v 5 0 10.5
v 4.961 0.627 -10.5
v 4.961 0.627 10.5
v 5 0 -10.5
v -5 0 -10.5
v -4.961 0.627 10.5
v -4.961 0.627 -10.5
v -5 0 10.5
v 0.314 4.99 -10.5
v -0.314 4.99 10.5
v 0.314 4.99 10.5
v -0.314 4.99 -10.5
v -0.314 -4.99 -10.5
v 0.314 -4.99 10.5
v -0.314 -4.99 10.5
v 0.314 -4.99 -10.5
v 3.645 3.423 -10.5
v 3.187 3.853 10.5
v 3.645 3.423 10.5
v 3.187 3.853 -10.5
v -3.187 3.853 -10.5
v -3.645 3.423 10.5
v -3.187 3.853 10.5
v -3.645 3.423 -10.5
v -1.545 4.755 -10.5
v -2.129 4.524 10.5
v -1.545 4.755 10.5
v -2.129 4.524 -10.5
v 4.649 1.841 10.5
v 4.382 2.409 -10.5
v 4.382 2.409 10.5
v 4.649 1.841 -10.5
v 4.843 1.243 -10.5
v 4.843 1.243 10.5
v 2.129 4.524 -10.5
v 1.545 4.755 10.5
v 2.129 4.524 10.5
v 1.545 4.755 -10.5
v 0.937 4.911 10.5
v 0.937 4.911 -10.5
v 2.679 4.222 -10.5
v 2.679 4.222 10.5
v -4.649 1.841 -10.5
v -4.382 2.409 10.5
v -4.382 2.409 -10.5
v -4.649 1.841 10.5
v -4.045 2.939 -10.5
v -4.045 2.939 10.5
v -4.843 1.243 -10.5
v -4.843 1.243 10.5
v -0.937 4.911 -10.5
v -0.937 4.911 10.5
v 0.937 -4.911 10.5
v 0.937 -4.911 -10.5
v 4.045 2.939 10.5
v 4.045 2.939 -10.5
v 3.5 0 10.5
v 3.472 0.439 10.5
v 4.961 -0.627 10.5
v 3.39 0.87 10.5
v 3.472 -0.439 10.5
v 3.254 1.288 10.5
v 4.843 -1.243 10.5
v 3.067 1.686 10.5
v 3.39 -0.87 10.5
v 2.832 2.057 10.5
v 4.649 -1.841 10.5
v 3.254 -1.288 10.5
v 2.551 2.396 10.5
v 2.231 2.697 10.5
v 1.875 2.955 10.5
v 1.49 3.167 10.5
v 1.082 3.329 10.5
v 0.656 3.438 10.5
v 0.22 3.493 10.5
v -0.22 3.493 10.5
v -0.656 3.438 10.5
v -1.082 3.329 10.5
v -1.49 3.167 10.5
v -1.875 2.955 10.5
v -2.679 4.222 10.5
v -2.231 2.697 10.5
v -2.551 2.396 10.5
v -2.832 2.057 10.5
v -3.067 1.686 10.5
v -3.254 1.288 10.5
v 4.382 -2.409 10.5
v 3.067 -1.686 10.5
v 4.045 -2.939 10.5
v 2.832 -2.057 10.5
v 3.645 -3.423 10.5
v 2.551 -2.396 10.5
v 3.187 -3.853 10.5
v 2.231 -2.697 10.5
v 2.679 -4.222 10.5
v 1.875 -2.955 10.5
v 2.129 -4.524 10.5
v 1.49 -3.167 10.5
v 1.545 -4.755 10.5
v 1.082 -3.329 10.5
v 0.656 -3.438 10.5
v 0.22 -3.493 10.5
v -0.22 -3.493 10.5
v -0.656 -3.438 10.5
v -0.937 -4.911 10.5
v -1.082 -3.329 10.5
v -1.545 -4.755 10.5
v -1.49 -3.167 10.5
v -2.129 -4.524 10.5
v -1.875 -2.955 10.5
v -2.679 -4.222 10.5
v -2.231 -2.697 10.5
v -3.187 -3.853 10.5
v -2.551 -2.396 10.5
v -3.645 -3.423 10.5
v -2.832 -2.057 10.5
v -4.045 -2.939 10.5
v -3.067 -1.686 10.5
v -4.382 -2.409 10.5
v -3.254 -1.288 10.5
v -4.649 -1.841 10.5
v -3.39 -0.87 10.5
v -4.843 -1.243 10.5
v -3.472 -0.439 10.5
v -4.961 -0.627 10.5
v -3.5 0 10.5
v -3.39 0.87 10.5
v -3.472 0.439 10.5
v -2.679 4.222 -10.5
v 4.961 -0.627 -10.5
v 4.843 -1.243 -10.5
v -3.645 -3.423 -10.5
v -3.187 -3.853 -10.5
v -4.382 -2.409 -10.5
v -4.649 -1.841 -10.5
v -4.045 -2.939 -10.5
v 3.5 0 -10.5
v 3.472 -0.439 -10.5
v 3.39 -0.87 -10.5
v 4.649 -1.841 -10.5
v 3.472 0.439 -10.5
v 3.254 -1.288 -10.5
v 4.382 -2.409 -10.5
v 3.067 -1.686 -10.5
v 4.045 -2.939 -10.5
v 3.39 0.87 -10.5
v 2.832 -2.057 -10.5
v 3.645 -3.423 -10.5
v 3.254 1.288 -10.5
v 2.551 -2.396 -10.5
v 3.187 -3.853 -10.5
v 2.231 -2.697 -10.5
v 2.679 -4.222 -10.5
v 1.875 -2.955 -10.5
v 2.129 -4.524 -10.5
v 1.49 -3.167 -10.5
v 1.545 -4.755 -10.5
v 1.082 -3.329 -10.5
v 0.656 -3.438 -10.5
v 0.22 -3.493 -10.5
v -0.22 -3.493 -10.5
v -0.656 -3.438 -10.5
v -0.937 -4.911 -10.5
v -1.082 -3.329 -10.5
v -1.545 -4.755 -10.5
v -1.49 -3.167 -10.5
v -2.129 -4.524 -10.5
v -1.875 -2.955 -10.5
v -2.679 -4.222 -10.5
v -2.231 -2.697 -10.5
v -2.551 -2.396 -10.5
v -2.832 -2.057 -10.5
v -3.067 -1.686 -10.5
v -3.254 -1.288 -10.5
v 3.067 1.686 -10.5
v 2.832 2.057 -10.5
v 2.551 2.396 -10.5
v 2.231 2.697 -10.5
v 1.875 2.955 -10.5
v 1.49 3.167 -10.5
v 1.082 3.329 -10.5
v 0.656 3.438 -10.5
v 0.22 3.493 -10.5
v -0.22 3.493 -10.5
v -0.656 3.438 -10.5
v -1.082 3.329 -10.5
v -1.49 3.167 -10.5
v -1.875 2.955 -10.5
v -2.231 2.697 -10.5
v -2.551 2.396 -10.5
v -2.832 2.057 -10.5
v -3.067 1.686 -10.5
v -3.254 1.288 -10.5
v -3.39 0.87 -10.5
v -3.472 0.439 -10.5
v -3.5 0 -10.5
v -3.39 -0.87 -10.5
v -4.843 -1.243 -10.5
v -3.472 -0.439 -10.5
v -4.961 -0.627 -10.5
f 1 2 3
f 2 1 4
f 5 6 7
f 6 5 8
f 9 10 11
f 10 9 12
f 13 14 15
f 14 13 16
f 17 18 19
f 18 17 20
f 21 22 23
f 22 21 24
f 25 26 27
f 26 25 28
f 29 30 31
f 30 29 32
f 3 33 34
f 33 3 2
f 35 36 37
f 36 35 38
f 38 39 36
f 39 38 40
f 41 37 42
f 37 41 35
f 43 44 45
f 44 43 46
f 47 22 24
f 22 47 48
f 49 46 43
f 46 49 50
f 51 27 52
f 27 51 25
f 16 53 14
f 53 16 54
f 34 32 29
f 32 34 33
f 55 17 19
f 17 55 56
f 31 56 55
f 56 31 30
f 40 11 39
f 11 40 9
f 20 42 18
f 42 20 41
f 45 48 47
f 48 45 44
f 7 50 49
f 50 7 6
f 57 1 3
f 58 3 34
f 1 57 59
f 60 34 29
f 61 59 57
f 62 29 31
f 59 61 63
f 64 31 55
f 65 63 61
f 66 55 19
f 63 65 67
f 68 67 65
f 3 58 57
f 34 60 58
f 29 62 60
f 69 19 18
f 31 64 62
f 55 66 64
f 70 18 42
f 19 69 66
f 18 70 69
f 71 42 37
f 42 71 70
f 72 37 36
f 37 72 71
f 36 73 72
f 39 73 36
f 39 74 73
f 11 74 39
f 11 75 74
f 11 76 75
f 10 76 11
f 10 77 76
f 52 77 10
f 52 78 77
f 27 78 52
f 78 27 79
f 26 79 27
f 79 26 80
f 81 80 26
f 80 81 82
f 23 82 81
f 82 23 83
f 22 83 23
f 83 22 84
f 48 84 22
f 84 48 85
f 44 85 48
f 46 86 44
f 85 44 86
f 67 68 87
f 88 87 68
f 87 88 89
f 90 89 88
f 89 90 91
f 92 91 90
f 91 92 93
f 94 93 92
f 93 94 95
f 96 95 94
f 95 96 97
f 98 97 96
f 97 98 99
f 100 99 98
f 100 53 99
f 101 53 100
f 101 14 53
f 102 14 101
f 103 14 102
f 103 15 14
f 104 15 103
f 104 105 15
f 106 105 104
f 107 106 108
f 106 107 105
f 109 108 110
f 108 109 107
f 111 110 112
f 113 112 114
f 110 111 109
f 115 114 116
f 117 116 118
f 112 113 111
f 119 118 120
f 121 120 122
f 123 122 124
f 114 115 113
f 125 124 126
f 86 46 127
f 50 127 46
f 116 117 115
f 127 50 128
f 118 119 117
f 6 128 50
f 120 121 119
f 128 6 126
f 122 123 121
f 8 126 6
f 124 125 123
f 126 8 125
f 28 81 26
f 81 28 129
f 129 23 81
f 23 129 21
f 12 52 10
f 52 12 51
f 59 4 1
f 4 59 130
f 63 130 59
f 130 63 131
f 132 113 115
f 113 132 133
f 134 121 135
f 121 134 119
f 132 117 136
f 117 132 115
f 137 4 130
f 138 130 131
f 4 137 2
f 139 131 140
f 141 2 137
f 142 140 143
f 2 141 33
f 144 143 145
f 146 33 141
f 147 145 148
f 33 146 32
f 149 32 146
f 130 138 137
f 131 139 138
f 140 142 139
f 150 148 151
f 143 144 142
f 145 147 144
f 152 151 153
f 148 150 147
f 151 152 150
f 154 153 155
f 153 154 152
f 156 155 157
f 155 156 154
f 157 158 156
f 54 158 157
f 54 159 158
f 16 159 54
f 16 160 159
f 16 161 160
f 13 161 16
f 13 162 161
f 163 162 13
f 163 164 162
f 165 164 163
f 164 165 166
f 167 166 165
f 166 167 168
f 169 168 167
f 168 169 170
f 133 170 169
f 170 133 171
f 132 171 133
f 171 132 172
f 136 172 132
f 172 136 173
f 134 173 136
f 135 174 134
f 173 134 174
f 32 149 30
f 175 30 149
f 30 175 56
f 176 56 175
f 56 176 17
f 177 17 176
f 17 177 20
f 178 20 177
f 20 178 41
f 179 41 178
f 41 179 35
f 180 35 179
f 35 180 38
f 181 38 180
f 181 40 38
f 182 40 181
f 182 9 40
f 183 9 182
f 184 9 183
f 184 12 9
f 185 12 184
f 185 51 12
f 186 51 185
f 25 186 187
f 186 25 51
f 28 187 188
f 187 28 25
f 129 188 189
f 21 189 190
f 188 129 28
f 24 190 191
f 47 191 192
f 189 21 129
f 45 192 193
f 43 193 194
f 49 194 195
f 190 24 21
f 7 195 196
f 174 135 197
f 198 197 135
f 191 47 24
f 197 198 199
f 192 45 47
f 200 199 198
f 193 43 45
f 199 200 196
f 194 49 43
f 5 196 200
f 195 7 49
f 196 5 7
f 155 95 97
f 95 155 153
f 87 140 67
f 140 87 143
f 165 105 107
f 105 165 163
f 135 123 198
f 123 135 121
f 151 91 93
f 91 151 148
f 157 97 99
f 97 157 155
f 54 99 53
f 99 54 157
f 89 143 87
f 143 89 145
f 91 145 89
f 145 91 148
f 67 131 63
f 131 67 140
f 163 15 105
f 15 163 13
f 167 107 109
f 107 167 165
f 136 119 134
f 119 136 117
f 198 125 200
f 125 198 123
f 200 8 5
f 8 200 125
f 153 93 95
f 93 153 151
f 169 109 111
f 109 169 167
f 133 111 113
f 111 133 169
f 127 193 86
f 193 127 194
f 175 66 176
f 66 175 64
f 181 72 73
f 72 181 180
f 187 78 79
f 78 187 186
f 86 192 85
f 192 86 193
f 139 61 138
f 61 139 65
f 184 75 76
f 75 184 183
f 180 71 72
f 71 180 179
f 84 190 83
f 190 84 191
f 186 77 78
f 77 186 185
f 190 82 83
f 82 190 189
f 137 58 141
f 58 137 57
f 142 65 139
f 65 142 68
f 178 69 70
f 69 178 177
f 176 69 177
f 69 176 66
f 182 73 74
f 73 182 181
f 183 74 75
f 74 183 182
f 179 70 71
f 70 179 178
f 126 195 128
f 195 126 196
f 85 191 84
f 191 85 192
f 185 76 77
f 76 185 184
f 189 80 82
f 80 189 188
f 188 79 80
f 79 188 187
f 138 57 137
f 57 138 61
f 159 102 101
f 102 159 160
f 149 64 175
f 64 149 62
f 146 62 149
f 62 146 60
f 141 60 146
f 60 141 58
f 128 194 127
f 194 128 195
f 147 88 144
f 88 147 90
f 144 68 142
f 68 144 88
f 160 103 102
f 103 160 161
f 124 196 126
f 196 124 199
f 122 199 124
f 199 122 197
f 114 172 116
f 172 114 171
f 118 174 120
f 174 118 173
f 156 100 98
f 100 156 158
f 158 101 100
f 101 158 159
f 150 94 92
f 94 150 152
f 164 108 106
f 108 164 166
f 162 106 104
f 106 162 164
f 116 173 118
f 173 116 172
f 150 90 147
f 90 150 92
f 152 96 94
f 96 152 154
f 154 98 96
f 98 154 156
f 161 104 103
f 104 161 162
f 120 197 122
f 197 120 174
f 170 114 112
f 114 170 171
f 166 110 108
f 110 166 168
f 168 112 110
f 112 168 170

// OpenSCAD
$fn = 50;


difference() {
	union() {
		translate(v = [0, 0, -10.5000000000]) {
			cylinder(h = 21, r = 5.0000000000);
		}
	}
	union() {
		translate(v = [0, 0, -100.0000000000]) {
			cylinder(h = 200, r = 3.5000000000);
		}
	}
}
